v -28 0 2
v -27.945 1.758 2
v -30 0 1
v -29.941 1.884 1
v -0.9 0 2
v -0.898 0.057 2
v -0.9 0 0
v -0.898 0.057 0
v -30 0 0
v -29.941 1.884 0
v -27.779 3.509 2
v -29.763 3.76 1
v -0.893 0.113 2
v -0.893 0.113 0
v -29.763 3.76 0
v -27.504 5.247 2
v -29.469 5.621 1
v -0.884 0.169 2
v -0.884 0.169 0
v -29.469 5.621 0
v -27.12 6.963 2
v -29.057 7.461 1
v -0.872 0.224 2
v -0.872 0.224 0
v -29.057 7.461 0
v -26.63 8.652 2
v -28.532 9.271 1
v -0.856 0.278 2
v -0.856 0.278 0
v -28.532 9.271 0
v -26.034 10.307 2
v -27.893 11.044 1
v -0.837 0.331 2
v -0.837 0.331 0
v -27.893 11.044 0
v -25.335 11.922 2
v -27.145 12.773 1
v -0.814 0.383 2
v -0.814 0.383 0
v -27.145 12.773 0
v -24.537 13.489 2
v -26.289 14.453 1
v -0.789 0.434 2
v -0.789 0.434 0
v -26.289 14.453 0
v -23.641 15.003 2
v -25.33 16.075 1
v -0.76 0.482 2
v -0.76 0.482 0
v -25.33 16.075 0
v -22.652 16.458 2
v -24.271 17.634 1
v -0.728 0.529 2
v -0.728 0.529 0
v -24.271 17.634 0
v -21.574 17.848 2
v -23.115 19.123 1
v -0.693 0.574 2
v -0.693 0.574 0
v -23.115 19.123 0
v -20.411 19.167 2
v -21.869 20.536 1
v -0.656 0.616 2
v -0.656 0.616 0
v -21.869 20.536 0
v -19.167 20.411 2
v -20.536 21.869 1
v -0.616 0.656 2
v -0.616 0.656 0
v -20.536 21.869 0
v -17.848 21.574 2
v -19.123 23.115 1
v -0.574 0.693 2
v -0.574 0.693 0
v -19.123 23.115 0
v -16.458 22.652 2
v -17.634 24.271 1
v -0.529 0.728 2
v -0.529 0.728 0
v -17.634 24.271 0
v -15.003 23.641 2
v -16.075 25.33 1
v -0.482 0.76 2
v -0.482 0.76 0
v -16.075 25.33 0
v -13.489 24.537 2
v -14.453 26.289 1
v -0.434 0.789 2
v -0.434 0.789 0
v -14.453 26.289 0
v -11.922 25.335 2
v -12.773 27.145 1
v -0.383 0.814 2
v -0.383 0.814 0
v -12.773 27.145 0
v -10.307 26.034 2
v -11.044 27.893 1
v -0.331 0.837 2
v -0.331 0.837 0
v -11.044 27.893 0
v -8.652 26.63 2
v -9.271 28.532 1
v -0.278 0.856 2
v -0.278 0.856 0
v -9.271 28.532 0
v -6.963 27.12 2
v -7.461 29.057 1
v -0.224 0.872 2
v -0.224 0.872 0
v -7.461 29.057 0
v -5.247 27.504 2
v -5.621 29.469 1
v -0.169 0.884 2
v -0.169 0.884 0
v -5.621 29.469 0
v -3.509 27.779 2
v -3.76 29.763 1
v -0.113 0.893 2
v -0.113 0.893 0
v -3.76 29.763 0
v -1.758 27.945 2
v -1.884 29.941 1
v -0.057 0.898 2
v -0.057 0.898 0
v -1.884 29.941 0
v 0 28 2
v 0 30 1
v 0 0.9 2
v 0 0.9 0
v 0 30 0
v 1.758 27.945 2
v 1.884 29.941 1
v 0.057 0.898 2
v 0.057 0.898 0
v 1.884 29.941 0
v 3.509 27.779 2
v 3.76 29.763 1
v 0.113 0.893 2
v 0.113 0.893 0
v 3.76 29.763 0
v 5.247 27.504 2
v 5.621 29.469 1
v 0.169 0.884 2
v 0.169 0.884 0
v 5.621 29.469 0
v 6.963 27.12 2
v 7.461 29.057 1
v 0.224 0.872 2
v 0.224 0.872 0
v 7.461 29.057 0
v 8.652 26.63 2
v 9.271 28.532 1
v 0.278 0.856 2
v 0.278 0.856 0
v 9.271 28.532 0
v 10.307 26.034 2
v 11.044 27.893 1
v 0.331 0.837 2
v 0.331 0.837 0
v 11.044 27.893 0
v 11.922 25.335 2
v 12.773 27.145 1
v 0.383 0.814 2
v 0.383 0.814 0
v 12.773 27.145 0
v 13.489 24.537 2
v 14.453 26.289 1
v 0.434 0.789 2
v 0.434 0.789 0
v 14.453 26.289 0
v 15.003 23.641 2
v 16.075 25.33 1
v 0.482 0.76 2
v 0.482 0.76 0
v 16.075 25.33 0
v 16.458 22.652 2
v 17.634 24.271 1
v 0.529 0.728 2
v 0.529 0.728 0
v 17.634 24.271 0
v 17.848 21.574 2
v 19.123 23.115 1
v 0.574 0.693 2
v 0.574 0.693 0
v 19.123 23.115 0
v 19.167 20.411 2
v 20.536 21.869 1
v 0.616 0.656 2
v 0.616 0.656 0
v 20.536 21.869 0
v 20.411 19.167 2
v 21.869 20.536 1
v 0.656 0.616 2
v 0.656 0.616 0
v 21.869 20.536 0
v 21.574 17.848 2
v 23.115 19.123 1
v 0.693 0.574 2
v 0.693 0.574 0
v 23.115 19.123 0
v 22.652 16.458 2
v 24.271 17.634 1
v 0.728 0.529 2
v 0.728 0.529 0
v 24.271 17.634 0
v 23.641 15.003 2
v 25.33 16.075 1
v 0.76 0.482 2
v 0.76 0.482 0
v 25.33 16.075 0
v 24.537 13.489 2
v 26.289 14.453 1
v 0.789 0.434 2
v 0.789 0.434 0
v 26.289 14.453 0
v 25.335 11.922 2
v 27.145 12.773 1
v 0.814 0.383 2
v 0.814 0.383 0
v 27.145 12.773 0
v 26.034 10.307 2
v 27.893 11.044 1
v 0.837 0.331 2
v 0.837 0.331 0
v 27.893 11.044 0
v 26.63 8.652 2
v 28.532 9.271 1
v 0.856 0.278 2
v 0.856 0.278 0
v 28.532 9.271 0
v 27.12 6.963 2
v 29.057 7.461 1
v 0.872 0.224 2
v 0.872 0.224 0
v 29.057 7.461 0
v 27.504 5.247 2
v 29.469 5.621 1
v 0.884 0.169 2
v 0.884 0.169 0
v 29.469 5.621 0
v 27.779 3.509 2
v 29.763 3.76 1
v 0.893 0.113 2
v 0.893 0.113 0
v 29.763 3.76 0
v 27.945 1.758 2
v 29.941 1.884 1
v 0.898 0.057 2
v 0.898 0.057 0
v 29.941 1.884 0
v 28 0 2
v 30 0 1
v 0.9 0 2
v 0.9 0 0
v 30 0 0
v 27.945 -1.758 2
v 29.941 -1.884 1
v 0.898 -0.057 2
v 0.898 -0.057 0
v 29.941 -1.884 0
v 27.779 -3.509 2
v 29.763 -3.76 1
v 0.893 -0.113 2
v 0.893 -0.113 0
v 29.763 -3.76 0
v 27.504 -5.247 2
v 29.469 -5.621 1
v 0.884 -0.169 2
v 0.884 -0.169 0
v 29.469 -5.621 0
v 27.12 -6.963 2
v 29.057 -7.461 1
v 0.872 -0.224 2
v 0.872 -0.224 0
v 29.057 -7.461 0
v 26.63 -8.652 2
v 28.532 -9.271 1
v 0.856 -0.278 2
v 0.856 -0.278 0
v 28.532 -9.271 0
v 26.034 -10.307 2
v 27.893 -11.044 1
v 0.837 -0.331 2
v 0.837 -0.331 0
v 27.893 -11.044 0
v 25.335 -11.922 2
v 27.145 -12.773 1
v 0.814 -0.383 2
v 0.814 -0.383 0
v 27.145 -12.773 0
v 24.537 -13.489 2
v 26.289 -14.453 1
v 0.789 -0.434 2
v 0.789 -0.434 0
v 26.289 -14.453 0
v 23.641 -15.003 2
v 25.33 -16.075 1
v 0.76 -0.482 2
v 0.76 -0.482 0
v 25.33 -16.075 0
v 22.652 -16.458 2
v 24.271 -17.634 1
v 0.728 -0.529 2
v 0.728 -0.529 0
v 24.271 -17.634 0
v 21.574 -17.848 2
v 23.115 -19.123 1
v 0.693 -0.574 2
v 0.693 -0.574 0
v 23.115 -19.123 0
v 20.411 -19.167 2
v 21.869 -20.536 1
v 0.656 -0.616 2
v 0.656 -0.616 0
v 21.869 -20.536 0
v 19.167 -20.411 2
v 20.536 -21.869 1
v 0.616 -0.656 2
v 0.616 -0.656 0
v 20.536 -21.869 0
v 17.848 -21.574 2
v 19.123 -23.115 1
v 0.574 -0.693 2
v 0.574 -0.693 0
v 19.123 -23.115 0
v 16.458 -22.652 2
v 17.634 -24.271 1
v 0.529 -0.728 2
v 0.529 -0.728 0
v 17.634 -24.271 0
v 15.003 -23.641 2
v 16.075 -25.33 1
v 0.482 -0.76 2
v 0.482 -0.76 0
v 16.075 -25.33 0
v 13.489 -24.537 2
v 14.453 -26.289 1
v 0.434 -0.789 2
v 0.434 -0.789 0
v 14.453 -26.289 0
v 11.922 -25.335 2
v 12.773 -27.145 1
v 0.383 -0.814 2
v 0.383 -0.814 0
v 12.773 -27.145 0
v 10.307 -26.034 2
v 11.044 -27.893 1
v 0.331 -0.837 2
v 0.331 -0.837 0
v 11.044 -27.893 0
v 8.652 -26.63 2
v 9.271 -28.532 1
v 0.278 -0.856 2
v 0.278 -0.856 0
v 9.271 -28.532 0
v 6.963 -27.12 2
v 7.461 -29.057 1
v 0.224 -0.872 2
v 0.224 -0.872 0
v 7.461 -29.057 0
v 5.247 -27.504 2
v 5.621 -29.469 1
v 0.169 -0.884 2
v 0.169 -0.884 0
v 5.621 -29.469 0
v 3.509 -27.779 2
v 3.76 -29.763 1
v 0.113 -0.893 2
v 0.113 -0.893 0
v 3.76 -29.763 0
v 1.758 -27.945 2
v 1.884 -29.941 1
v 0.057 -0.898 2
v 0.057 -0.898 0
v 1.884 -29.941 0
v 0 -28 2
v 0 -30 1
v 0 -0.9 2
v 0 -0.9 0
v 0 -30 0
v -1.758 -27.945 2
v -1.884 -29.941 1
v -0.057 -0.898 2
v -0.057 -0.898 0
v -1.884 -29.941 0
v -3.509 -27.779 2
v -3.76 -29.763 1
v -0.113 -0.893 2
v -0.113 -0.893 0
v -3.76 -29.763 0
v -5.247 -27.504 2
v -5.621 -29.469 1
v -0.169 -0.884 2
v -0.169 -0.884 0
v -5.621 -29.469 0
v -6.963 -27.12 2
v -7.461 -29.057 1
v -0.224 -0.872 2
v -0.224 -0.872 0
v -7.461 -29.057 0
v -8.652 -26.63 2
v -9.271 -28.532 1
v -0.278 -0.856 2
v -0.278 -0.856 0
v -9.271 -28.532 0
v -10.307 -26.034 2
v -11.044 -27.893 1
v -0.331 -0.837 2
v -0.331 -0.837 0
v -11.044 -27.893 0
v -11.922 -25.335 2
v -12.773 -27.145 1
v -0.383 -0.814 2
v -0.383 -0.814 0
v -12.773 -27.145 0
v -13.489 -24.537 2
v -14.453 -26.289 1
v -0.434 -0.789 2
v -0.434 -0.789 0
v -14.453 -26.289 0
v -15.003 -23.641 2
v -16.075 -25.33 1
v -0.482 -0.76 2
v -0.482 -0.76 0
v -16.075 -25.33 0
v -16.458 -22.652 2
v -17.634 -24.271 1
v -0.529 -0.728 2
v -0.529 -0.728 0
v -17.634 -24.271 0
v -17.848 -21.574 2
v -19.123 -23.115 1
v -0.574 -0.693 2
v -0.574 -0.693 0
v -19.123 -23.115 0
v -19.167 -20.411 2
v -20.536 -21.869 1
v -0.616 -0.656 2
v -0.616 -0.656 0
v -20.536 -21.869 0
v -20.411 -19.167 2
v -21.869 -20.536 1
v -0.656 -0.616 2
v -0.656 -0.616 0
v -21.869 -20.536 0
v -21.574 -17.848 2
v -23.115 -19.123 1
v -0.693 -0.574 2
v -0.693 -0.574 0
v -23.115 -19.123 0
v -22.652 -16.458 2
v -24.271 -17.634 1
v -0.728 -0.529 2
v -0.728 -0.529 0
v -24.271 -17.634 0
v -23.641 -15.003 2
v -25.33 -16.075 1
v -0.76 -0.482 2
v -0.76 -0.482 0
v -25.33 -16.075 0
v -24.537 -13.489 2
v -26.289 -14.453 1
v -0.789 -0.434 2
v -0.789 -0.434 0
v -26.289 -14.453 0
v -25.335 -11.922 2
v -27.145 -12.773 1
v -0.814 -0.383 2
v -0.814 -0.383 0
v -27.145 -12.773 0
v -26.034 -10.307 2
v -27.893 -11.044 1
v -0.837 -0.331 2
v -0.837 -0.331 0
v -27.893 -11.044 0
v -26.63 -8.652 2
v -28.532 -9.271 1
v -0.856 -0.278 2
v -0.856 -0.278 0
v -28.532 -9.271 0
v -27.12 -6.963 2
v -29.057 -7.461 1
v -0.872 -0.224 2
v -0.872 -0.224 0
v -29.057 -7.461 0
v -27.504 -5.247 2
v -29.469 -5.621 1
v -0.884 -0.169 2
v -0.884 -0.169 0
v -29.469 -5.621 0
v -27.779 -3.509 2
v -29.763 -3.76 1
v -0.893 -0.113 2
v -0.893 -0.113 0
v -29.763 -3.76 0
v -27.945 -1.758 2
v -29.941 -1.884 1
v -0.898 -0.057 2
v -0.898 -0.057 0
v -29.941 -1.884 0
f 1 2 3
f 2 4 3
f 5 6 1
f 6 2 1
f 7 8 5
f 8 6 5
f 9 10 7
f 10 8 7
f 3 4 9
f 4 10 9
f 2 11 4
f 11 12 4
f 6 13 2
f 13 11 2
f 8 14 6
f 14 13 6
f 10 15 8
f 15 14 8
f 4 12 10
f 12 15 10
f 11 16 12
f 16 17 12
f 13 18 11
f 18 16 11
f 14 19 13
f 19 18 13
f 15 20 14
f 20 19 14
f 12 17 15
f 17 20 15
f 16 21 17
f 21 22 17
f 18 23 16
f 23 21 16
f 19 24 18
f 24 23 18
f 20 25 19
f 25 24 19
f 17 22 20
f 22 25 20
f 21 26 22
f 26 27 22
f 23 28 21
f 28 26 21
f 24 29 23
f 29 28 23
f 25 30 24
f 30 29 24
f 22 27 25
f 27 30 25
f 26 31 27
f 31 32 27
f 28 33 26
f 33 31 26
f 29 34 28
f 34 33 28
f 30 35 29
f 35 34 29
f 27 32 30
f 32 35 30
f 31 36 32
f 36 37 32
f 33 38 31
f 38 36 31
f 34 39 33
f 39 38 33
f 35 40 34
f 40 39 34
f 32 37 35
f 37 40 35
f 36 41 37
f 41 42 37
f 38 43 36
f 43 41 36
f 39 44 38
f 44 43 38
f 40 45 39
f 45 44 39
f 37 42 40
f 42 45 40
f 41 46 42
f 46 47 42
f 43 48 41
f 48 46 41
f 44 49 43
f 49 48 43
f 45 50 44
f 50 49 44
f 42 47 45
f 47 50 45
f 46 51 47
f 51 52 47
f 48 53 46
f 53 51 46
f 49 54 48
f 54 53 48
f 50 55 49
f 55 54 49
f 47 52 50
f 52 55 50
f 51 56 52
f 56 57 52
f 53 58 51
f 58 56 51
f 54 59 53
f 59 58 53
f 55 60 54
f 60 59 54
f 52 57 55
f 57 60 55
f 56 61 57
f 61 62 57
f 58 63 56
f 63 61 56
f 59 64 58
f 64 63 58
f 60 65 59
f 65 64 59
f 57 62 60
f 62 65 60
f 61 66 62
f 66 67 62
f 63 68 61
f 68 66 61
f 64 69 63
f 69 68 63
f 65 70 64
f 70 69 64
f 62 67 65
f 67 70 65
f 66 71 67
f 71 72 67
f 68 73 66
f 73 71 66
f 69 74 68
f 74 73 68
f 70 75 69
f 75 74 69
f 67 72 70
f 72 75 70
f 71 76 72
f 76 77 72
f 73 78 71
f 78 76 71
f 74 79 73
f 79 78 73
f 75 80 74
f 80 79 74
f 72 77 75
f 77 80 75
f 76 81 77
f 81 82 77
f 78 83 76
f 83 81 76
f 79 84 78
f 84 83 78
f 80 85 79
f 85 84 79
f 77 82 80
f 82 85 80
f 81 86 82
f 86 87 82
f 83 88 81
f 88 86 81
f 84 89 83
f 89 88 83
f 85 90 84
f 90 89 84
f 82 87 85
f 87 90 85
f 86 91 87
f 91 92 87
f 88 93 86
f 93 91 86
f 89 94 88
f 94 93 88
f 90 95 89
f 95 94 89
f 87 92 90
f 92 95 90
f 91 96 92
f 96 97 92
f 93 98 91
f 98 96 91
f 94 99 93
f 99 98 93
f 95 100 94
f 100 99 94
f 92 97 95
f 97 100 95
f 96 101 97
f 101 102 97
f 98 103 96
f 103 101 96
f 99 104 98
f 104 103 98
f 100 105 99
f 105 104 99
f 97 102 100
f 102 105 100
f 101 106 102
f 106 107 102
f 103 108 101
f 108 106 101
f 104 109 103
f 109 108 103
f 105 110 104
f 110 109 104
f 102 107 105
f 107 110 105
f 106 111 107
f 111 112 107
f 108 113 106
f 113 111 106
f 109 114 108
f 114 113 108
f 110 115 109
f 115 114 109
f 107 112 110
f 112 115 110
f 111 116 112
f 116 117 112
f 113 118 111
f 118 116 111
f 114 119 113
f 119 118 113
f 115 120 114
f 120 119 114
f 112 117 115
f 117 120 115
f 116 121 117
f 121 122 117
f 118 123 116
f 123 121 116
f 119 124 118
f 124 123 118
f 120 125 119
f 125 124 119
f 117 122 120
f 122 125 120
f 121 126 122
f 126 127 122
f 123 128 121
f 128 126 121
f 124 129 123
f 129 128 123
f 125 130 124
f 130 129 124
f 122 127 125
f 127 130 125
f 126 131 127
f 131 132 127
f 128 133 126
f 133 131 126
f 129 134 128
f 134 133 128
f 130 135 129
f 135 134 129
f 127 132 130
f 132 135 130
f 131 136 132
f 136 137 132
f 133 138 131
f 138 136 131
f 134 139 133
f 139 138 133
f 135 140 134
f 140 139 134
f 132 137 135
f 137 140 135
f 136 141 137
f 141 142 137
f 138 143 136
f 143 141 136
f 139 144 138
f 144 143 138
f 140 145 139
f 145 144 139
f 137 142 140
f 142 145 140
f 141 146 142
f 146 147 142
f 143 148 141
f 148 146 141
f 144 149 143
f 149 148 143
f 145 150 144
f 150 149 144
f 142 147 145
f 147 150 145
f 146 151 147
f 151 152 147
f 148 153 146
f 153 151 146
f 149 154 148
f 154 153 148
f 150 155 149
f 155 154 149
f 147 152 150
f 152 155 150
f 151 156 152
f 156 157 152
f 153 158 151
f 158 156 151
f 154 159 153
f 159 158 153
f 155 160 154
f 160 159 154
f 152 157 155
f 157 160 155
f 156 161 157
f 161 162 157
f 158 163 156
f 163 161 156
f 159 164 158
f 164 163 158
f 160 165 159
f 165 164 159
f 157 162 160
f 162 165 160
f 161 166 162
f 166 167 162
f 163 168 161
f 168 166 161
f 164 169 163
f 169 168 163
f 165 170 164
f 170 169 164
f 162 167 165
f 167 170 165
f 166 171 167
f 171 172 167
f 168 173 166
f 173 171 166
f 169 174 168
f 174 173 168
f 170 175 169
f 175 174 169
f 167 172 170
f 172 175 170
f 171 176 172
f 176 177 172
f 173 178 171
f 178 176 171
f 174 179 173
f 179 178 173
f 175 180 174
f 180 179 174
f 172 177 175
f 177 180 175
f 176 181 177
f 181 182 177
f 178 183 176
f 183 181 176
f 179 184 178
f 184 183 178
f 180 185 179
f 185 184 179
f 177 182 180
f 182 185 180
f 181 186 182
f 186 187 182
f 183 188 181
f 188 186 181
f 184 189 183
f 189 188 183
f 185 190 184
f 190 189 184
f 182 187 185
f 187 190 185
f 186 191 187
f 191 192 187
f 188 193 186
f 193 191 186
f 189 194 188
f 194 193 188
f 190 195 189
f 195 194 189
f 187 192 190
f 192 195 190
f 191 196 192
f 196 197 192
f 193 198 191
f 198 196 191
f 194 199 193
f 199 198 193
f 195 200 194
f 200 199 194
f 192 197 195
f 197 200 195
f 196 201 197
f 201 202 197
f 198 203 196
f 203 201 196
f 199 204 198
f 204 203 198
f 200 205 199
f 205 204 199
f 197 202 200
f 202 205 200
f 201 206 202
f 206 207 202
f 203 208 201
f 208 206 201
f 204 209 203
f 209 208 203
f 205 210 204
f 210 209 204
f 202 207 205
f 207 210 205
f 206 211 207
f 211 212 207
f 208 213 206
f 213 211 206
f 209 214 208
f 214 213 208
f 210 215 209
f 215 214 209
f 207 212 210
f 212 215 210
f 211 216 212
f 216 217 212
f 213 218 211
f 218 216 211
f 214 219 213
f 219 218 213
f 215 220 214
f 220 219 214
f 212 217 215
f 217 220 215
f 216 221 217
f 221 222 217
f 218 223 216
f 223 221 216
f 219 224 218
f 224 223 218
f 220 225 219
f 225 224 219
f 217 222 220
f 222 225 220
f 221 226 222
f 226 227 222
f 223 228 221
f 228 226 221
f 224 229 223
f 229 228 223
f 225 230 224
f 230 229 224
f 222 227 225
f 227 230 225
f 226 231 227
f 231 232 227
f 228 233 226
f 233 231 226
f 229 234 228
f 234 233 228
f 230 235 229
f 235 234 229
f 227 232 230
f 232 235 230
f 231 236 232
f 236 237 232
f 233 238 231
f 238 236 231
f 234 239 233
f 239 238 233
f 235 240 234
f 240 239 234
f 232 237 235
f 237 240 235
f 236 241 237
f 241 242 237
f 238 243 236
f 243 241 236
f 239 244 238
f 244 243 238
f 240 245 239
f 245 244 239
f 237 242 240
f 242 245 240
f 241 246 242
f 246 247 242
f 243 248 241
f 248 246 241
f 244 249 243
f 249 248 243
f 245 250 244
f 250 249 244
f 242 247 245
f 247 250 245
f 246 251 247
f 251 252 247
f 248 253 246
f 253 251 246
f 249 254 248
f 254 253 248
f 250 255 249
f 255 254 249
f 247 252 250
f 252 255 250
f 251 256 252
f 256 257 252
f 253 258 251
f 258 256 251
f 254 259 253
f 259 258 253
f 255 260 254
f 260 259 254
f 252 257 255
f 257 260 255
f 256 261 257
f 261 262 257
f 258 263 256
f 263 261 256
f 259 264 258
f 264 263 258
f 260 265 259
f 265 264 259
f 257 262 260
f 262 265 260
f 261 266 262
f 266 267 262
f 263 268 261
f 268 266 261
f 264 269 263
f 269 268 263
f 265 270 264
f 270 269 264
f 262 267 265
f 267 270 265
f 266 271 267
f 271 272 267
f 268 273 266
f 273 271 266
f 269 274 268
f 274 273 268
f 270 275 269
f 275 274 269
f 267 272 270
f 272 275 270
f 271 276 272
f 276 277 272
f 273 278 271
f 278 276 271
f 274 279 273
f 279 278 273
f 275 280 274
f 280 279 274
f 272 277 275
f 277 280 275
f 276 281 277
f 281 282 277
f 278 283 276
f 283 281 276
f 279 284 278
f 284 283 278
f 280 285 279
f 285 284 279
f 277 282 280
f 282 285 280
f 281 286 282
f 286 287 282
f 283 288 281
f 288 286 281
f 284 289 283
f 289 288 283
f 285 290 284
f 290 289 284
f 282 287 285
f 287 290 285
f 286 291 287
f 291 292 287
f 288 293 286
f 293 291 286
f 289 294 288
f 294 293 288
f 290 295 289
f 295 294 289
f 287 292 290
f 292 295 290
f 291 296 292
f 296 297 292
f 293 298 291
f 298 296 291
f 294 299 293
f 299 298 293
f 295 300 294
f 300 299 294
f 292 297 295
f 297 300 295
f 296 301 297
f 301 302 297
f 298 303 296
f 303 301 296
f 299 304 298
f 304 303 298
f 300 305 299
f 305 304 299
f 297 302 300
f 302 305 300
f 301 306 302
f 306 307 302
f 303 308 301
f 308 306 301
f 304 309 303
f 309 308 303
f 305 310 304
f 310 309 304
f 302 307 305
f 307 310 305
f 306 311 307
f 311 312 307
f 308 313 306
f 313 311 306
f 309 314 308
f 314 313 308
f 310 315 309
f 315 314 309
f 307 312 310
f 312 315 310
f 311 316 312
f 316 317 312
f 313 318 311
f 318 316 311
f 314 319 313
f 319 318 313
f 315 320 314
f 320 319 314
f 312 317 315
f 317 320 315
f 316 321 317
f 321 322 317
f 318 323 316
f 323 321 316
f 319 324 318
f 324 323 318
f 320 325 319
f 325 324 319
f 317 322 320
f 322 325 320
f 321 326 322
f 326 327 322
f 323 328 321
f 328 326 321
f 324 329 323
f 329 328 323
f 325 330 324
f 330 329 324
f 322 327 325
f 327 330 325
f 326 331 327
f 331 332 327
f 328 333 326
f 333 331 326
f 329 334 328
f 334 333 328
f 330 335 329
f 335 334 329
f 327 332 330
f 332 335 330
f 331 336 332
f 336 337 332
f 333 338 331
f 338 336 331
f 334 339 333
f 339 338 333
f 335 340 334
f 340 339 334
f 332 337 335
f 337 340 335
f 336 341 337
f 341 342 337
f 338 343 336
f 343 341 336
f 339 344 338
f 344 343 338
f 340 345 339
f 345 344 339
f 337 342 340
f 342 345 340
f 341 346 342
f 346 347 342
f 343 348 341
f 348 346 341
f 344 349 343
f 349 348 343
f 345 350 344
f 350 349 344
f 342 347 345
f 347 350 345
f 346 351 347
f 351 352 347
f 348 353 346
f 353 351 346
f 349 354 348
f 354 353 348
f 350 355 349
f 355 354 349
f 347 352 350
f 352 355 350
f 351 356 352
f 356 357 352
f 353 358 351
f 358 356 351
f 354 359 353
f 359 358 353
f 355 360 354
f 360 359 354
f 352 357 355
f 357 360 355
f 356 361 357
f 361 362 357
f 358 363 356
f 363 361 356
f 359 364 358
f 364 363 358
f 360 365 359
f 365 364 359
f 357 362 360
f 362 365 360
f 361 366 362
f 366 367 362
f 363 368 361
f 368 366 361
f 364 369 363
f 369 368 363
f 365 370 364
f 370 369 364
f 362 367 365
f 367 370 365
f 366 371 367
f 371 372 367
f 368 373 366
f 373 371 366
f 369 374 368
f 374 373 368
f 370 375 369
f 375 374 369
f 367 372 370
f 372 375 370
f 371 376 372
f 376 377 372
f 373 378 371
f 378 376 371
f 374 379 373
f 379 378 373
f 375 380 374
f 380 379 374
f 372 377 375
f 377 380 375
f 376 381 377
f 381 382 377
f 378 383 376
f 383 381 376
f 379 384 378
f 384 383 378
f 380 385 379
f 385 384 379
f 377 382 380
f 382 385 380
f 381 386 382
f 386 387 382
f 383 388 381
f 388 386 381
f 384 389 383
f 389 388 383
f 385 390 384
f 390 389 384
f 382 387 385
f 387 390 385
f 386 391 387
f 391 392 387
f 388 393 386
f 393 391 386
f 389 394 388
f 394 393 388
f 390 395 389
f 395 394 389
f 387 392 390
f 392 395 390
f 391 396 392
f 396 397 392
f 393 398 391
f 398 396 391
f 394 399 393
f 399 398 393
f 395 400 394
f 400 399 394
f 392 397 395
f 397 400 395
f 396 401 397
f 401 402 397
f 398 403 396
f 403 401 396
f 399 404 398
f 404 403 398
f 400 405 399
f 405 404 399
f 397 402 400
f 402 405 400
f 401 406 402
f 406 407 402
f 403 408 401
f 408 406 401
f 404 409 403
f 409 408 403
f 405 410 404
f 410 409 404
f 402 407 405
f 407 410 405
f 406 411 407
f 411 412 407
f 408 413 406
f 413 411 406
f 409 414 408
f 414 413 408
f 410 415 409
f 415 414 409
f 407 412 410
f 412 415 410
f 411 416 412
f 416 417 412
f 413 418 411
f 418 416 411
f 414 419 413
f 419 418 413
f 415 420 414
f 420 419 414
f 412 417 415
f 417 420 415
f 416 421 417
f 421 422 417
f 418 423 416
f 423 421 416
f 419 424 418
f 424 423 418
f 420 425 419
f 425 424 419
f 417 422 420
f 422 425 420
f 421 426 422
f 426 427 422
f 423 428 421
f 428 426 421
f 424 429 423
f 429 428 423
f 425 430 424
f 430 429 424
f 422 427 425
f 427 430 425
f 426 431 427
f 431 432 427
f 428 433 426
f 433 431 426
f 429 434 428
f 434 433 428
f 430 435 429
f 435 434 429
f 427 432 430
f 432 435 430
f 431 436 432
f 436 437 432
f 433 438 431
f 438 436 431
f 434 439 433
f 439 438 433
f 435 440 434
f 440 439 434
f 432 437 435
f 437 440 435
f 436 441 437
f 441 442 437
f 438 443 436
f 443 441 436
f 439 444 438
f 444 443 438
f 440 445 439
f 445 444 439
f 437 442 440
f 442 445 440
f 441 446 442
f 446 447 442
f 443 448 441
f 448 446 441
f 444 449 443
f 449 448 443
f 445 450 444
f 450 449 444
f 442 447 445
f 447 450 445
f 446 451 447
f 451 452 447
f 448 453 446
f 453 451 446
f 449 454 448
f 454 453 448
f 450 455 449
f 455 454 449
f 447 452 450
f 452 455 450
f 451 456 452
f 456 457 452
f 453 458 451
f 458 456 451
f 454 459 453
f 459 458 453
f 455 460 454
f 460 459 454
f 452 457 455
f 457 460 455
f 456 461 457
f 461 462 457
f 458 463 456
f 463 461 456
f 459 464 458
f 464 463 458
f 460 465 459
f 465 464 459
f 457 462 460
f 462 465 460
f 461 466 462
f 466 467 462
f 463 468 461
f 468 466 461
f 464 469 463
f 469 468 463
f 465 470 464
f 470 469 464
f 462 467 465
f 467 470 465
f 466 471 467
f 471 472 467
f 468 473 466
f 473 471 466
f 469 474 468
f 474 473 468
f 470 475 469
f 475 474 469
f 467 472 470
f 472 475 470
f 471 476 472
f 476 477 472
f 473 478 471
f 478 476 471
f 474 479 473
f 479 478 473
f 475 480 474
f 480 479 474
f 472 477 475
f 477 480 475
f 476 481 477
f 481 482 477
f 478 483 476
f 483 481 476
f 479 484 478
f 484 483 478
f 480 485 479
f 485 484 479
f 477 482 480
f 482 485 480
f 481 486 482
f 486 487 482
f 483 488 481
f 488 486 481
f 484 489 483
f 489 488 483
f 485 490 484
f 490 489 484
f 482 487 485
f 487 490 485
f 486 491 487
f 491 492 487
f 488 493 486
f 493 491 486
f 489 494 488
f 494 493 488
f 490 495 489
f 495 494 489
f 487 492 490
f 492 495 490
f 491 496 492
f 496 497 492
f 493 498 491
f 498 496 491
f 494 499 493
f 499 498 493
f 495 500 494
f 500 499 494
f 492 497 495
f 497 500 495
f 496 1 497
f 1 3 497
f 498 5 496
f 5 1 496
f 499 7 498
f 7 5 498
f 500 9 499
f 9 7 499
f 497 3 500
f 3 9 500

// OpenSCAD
$fn = 100;

wheel_d = 60;
thickness = 6;
notch_depth = 2;
notch_width = 2;
wall = 1;
hole_d = 1.8;

rotate_extrude(angle = 360) {
    polygon(points=[
        [hole_d / 2, 0],
        [wheel_d / 2, 0],
        [wheel_d / 2, wall],
        [wheel_d / 2 - notch_depth, wall * 2],
        [hole_d / 2, wall * 2]
    ]);
}
